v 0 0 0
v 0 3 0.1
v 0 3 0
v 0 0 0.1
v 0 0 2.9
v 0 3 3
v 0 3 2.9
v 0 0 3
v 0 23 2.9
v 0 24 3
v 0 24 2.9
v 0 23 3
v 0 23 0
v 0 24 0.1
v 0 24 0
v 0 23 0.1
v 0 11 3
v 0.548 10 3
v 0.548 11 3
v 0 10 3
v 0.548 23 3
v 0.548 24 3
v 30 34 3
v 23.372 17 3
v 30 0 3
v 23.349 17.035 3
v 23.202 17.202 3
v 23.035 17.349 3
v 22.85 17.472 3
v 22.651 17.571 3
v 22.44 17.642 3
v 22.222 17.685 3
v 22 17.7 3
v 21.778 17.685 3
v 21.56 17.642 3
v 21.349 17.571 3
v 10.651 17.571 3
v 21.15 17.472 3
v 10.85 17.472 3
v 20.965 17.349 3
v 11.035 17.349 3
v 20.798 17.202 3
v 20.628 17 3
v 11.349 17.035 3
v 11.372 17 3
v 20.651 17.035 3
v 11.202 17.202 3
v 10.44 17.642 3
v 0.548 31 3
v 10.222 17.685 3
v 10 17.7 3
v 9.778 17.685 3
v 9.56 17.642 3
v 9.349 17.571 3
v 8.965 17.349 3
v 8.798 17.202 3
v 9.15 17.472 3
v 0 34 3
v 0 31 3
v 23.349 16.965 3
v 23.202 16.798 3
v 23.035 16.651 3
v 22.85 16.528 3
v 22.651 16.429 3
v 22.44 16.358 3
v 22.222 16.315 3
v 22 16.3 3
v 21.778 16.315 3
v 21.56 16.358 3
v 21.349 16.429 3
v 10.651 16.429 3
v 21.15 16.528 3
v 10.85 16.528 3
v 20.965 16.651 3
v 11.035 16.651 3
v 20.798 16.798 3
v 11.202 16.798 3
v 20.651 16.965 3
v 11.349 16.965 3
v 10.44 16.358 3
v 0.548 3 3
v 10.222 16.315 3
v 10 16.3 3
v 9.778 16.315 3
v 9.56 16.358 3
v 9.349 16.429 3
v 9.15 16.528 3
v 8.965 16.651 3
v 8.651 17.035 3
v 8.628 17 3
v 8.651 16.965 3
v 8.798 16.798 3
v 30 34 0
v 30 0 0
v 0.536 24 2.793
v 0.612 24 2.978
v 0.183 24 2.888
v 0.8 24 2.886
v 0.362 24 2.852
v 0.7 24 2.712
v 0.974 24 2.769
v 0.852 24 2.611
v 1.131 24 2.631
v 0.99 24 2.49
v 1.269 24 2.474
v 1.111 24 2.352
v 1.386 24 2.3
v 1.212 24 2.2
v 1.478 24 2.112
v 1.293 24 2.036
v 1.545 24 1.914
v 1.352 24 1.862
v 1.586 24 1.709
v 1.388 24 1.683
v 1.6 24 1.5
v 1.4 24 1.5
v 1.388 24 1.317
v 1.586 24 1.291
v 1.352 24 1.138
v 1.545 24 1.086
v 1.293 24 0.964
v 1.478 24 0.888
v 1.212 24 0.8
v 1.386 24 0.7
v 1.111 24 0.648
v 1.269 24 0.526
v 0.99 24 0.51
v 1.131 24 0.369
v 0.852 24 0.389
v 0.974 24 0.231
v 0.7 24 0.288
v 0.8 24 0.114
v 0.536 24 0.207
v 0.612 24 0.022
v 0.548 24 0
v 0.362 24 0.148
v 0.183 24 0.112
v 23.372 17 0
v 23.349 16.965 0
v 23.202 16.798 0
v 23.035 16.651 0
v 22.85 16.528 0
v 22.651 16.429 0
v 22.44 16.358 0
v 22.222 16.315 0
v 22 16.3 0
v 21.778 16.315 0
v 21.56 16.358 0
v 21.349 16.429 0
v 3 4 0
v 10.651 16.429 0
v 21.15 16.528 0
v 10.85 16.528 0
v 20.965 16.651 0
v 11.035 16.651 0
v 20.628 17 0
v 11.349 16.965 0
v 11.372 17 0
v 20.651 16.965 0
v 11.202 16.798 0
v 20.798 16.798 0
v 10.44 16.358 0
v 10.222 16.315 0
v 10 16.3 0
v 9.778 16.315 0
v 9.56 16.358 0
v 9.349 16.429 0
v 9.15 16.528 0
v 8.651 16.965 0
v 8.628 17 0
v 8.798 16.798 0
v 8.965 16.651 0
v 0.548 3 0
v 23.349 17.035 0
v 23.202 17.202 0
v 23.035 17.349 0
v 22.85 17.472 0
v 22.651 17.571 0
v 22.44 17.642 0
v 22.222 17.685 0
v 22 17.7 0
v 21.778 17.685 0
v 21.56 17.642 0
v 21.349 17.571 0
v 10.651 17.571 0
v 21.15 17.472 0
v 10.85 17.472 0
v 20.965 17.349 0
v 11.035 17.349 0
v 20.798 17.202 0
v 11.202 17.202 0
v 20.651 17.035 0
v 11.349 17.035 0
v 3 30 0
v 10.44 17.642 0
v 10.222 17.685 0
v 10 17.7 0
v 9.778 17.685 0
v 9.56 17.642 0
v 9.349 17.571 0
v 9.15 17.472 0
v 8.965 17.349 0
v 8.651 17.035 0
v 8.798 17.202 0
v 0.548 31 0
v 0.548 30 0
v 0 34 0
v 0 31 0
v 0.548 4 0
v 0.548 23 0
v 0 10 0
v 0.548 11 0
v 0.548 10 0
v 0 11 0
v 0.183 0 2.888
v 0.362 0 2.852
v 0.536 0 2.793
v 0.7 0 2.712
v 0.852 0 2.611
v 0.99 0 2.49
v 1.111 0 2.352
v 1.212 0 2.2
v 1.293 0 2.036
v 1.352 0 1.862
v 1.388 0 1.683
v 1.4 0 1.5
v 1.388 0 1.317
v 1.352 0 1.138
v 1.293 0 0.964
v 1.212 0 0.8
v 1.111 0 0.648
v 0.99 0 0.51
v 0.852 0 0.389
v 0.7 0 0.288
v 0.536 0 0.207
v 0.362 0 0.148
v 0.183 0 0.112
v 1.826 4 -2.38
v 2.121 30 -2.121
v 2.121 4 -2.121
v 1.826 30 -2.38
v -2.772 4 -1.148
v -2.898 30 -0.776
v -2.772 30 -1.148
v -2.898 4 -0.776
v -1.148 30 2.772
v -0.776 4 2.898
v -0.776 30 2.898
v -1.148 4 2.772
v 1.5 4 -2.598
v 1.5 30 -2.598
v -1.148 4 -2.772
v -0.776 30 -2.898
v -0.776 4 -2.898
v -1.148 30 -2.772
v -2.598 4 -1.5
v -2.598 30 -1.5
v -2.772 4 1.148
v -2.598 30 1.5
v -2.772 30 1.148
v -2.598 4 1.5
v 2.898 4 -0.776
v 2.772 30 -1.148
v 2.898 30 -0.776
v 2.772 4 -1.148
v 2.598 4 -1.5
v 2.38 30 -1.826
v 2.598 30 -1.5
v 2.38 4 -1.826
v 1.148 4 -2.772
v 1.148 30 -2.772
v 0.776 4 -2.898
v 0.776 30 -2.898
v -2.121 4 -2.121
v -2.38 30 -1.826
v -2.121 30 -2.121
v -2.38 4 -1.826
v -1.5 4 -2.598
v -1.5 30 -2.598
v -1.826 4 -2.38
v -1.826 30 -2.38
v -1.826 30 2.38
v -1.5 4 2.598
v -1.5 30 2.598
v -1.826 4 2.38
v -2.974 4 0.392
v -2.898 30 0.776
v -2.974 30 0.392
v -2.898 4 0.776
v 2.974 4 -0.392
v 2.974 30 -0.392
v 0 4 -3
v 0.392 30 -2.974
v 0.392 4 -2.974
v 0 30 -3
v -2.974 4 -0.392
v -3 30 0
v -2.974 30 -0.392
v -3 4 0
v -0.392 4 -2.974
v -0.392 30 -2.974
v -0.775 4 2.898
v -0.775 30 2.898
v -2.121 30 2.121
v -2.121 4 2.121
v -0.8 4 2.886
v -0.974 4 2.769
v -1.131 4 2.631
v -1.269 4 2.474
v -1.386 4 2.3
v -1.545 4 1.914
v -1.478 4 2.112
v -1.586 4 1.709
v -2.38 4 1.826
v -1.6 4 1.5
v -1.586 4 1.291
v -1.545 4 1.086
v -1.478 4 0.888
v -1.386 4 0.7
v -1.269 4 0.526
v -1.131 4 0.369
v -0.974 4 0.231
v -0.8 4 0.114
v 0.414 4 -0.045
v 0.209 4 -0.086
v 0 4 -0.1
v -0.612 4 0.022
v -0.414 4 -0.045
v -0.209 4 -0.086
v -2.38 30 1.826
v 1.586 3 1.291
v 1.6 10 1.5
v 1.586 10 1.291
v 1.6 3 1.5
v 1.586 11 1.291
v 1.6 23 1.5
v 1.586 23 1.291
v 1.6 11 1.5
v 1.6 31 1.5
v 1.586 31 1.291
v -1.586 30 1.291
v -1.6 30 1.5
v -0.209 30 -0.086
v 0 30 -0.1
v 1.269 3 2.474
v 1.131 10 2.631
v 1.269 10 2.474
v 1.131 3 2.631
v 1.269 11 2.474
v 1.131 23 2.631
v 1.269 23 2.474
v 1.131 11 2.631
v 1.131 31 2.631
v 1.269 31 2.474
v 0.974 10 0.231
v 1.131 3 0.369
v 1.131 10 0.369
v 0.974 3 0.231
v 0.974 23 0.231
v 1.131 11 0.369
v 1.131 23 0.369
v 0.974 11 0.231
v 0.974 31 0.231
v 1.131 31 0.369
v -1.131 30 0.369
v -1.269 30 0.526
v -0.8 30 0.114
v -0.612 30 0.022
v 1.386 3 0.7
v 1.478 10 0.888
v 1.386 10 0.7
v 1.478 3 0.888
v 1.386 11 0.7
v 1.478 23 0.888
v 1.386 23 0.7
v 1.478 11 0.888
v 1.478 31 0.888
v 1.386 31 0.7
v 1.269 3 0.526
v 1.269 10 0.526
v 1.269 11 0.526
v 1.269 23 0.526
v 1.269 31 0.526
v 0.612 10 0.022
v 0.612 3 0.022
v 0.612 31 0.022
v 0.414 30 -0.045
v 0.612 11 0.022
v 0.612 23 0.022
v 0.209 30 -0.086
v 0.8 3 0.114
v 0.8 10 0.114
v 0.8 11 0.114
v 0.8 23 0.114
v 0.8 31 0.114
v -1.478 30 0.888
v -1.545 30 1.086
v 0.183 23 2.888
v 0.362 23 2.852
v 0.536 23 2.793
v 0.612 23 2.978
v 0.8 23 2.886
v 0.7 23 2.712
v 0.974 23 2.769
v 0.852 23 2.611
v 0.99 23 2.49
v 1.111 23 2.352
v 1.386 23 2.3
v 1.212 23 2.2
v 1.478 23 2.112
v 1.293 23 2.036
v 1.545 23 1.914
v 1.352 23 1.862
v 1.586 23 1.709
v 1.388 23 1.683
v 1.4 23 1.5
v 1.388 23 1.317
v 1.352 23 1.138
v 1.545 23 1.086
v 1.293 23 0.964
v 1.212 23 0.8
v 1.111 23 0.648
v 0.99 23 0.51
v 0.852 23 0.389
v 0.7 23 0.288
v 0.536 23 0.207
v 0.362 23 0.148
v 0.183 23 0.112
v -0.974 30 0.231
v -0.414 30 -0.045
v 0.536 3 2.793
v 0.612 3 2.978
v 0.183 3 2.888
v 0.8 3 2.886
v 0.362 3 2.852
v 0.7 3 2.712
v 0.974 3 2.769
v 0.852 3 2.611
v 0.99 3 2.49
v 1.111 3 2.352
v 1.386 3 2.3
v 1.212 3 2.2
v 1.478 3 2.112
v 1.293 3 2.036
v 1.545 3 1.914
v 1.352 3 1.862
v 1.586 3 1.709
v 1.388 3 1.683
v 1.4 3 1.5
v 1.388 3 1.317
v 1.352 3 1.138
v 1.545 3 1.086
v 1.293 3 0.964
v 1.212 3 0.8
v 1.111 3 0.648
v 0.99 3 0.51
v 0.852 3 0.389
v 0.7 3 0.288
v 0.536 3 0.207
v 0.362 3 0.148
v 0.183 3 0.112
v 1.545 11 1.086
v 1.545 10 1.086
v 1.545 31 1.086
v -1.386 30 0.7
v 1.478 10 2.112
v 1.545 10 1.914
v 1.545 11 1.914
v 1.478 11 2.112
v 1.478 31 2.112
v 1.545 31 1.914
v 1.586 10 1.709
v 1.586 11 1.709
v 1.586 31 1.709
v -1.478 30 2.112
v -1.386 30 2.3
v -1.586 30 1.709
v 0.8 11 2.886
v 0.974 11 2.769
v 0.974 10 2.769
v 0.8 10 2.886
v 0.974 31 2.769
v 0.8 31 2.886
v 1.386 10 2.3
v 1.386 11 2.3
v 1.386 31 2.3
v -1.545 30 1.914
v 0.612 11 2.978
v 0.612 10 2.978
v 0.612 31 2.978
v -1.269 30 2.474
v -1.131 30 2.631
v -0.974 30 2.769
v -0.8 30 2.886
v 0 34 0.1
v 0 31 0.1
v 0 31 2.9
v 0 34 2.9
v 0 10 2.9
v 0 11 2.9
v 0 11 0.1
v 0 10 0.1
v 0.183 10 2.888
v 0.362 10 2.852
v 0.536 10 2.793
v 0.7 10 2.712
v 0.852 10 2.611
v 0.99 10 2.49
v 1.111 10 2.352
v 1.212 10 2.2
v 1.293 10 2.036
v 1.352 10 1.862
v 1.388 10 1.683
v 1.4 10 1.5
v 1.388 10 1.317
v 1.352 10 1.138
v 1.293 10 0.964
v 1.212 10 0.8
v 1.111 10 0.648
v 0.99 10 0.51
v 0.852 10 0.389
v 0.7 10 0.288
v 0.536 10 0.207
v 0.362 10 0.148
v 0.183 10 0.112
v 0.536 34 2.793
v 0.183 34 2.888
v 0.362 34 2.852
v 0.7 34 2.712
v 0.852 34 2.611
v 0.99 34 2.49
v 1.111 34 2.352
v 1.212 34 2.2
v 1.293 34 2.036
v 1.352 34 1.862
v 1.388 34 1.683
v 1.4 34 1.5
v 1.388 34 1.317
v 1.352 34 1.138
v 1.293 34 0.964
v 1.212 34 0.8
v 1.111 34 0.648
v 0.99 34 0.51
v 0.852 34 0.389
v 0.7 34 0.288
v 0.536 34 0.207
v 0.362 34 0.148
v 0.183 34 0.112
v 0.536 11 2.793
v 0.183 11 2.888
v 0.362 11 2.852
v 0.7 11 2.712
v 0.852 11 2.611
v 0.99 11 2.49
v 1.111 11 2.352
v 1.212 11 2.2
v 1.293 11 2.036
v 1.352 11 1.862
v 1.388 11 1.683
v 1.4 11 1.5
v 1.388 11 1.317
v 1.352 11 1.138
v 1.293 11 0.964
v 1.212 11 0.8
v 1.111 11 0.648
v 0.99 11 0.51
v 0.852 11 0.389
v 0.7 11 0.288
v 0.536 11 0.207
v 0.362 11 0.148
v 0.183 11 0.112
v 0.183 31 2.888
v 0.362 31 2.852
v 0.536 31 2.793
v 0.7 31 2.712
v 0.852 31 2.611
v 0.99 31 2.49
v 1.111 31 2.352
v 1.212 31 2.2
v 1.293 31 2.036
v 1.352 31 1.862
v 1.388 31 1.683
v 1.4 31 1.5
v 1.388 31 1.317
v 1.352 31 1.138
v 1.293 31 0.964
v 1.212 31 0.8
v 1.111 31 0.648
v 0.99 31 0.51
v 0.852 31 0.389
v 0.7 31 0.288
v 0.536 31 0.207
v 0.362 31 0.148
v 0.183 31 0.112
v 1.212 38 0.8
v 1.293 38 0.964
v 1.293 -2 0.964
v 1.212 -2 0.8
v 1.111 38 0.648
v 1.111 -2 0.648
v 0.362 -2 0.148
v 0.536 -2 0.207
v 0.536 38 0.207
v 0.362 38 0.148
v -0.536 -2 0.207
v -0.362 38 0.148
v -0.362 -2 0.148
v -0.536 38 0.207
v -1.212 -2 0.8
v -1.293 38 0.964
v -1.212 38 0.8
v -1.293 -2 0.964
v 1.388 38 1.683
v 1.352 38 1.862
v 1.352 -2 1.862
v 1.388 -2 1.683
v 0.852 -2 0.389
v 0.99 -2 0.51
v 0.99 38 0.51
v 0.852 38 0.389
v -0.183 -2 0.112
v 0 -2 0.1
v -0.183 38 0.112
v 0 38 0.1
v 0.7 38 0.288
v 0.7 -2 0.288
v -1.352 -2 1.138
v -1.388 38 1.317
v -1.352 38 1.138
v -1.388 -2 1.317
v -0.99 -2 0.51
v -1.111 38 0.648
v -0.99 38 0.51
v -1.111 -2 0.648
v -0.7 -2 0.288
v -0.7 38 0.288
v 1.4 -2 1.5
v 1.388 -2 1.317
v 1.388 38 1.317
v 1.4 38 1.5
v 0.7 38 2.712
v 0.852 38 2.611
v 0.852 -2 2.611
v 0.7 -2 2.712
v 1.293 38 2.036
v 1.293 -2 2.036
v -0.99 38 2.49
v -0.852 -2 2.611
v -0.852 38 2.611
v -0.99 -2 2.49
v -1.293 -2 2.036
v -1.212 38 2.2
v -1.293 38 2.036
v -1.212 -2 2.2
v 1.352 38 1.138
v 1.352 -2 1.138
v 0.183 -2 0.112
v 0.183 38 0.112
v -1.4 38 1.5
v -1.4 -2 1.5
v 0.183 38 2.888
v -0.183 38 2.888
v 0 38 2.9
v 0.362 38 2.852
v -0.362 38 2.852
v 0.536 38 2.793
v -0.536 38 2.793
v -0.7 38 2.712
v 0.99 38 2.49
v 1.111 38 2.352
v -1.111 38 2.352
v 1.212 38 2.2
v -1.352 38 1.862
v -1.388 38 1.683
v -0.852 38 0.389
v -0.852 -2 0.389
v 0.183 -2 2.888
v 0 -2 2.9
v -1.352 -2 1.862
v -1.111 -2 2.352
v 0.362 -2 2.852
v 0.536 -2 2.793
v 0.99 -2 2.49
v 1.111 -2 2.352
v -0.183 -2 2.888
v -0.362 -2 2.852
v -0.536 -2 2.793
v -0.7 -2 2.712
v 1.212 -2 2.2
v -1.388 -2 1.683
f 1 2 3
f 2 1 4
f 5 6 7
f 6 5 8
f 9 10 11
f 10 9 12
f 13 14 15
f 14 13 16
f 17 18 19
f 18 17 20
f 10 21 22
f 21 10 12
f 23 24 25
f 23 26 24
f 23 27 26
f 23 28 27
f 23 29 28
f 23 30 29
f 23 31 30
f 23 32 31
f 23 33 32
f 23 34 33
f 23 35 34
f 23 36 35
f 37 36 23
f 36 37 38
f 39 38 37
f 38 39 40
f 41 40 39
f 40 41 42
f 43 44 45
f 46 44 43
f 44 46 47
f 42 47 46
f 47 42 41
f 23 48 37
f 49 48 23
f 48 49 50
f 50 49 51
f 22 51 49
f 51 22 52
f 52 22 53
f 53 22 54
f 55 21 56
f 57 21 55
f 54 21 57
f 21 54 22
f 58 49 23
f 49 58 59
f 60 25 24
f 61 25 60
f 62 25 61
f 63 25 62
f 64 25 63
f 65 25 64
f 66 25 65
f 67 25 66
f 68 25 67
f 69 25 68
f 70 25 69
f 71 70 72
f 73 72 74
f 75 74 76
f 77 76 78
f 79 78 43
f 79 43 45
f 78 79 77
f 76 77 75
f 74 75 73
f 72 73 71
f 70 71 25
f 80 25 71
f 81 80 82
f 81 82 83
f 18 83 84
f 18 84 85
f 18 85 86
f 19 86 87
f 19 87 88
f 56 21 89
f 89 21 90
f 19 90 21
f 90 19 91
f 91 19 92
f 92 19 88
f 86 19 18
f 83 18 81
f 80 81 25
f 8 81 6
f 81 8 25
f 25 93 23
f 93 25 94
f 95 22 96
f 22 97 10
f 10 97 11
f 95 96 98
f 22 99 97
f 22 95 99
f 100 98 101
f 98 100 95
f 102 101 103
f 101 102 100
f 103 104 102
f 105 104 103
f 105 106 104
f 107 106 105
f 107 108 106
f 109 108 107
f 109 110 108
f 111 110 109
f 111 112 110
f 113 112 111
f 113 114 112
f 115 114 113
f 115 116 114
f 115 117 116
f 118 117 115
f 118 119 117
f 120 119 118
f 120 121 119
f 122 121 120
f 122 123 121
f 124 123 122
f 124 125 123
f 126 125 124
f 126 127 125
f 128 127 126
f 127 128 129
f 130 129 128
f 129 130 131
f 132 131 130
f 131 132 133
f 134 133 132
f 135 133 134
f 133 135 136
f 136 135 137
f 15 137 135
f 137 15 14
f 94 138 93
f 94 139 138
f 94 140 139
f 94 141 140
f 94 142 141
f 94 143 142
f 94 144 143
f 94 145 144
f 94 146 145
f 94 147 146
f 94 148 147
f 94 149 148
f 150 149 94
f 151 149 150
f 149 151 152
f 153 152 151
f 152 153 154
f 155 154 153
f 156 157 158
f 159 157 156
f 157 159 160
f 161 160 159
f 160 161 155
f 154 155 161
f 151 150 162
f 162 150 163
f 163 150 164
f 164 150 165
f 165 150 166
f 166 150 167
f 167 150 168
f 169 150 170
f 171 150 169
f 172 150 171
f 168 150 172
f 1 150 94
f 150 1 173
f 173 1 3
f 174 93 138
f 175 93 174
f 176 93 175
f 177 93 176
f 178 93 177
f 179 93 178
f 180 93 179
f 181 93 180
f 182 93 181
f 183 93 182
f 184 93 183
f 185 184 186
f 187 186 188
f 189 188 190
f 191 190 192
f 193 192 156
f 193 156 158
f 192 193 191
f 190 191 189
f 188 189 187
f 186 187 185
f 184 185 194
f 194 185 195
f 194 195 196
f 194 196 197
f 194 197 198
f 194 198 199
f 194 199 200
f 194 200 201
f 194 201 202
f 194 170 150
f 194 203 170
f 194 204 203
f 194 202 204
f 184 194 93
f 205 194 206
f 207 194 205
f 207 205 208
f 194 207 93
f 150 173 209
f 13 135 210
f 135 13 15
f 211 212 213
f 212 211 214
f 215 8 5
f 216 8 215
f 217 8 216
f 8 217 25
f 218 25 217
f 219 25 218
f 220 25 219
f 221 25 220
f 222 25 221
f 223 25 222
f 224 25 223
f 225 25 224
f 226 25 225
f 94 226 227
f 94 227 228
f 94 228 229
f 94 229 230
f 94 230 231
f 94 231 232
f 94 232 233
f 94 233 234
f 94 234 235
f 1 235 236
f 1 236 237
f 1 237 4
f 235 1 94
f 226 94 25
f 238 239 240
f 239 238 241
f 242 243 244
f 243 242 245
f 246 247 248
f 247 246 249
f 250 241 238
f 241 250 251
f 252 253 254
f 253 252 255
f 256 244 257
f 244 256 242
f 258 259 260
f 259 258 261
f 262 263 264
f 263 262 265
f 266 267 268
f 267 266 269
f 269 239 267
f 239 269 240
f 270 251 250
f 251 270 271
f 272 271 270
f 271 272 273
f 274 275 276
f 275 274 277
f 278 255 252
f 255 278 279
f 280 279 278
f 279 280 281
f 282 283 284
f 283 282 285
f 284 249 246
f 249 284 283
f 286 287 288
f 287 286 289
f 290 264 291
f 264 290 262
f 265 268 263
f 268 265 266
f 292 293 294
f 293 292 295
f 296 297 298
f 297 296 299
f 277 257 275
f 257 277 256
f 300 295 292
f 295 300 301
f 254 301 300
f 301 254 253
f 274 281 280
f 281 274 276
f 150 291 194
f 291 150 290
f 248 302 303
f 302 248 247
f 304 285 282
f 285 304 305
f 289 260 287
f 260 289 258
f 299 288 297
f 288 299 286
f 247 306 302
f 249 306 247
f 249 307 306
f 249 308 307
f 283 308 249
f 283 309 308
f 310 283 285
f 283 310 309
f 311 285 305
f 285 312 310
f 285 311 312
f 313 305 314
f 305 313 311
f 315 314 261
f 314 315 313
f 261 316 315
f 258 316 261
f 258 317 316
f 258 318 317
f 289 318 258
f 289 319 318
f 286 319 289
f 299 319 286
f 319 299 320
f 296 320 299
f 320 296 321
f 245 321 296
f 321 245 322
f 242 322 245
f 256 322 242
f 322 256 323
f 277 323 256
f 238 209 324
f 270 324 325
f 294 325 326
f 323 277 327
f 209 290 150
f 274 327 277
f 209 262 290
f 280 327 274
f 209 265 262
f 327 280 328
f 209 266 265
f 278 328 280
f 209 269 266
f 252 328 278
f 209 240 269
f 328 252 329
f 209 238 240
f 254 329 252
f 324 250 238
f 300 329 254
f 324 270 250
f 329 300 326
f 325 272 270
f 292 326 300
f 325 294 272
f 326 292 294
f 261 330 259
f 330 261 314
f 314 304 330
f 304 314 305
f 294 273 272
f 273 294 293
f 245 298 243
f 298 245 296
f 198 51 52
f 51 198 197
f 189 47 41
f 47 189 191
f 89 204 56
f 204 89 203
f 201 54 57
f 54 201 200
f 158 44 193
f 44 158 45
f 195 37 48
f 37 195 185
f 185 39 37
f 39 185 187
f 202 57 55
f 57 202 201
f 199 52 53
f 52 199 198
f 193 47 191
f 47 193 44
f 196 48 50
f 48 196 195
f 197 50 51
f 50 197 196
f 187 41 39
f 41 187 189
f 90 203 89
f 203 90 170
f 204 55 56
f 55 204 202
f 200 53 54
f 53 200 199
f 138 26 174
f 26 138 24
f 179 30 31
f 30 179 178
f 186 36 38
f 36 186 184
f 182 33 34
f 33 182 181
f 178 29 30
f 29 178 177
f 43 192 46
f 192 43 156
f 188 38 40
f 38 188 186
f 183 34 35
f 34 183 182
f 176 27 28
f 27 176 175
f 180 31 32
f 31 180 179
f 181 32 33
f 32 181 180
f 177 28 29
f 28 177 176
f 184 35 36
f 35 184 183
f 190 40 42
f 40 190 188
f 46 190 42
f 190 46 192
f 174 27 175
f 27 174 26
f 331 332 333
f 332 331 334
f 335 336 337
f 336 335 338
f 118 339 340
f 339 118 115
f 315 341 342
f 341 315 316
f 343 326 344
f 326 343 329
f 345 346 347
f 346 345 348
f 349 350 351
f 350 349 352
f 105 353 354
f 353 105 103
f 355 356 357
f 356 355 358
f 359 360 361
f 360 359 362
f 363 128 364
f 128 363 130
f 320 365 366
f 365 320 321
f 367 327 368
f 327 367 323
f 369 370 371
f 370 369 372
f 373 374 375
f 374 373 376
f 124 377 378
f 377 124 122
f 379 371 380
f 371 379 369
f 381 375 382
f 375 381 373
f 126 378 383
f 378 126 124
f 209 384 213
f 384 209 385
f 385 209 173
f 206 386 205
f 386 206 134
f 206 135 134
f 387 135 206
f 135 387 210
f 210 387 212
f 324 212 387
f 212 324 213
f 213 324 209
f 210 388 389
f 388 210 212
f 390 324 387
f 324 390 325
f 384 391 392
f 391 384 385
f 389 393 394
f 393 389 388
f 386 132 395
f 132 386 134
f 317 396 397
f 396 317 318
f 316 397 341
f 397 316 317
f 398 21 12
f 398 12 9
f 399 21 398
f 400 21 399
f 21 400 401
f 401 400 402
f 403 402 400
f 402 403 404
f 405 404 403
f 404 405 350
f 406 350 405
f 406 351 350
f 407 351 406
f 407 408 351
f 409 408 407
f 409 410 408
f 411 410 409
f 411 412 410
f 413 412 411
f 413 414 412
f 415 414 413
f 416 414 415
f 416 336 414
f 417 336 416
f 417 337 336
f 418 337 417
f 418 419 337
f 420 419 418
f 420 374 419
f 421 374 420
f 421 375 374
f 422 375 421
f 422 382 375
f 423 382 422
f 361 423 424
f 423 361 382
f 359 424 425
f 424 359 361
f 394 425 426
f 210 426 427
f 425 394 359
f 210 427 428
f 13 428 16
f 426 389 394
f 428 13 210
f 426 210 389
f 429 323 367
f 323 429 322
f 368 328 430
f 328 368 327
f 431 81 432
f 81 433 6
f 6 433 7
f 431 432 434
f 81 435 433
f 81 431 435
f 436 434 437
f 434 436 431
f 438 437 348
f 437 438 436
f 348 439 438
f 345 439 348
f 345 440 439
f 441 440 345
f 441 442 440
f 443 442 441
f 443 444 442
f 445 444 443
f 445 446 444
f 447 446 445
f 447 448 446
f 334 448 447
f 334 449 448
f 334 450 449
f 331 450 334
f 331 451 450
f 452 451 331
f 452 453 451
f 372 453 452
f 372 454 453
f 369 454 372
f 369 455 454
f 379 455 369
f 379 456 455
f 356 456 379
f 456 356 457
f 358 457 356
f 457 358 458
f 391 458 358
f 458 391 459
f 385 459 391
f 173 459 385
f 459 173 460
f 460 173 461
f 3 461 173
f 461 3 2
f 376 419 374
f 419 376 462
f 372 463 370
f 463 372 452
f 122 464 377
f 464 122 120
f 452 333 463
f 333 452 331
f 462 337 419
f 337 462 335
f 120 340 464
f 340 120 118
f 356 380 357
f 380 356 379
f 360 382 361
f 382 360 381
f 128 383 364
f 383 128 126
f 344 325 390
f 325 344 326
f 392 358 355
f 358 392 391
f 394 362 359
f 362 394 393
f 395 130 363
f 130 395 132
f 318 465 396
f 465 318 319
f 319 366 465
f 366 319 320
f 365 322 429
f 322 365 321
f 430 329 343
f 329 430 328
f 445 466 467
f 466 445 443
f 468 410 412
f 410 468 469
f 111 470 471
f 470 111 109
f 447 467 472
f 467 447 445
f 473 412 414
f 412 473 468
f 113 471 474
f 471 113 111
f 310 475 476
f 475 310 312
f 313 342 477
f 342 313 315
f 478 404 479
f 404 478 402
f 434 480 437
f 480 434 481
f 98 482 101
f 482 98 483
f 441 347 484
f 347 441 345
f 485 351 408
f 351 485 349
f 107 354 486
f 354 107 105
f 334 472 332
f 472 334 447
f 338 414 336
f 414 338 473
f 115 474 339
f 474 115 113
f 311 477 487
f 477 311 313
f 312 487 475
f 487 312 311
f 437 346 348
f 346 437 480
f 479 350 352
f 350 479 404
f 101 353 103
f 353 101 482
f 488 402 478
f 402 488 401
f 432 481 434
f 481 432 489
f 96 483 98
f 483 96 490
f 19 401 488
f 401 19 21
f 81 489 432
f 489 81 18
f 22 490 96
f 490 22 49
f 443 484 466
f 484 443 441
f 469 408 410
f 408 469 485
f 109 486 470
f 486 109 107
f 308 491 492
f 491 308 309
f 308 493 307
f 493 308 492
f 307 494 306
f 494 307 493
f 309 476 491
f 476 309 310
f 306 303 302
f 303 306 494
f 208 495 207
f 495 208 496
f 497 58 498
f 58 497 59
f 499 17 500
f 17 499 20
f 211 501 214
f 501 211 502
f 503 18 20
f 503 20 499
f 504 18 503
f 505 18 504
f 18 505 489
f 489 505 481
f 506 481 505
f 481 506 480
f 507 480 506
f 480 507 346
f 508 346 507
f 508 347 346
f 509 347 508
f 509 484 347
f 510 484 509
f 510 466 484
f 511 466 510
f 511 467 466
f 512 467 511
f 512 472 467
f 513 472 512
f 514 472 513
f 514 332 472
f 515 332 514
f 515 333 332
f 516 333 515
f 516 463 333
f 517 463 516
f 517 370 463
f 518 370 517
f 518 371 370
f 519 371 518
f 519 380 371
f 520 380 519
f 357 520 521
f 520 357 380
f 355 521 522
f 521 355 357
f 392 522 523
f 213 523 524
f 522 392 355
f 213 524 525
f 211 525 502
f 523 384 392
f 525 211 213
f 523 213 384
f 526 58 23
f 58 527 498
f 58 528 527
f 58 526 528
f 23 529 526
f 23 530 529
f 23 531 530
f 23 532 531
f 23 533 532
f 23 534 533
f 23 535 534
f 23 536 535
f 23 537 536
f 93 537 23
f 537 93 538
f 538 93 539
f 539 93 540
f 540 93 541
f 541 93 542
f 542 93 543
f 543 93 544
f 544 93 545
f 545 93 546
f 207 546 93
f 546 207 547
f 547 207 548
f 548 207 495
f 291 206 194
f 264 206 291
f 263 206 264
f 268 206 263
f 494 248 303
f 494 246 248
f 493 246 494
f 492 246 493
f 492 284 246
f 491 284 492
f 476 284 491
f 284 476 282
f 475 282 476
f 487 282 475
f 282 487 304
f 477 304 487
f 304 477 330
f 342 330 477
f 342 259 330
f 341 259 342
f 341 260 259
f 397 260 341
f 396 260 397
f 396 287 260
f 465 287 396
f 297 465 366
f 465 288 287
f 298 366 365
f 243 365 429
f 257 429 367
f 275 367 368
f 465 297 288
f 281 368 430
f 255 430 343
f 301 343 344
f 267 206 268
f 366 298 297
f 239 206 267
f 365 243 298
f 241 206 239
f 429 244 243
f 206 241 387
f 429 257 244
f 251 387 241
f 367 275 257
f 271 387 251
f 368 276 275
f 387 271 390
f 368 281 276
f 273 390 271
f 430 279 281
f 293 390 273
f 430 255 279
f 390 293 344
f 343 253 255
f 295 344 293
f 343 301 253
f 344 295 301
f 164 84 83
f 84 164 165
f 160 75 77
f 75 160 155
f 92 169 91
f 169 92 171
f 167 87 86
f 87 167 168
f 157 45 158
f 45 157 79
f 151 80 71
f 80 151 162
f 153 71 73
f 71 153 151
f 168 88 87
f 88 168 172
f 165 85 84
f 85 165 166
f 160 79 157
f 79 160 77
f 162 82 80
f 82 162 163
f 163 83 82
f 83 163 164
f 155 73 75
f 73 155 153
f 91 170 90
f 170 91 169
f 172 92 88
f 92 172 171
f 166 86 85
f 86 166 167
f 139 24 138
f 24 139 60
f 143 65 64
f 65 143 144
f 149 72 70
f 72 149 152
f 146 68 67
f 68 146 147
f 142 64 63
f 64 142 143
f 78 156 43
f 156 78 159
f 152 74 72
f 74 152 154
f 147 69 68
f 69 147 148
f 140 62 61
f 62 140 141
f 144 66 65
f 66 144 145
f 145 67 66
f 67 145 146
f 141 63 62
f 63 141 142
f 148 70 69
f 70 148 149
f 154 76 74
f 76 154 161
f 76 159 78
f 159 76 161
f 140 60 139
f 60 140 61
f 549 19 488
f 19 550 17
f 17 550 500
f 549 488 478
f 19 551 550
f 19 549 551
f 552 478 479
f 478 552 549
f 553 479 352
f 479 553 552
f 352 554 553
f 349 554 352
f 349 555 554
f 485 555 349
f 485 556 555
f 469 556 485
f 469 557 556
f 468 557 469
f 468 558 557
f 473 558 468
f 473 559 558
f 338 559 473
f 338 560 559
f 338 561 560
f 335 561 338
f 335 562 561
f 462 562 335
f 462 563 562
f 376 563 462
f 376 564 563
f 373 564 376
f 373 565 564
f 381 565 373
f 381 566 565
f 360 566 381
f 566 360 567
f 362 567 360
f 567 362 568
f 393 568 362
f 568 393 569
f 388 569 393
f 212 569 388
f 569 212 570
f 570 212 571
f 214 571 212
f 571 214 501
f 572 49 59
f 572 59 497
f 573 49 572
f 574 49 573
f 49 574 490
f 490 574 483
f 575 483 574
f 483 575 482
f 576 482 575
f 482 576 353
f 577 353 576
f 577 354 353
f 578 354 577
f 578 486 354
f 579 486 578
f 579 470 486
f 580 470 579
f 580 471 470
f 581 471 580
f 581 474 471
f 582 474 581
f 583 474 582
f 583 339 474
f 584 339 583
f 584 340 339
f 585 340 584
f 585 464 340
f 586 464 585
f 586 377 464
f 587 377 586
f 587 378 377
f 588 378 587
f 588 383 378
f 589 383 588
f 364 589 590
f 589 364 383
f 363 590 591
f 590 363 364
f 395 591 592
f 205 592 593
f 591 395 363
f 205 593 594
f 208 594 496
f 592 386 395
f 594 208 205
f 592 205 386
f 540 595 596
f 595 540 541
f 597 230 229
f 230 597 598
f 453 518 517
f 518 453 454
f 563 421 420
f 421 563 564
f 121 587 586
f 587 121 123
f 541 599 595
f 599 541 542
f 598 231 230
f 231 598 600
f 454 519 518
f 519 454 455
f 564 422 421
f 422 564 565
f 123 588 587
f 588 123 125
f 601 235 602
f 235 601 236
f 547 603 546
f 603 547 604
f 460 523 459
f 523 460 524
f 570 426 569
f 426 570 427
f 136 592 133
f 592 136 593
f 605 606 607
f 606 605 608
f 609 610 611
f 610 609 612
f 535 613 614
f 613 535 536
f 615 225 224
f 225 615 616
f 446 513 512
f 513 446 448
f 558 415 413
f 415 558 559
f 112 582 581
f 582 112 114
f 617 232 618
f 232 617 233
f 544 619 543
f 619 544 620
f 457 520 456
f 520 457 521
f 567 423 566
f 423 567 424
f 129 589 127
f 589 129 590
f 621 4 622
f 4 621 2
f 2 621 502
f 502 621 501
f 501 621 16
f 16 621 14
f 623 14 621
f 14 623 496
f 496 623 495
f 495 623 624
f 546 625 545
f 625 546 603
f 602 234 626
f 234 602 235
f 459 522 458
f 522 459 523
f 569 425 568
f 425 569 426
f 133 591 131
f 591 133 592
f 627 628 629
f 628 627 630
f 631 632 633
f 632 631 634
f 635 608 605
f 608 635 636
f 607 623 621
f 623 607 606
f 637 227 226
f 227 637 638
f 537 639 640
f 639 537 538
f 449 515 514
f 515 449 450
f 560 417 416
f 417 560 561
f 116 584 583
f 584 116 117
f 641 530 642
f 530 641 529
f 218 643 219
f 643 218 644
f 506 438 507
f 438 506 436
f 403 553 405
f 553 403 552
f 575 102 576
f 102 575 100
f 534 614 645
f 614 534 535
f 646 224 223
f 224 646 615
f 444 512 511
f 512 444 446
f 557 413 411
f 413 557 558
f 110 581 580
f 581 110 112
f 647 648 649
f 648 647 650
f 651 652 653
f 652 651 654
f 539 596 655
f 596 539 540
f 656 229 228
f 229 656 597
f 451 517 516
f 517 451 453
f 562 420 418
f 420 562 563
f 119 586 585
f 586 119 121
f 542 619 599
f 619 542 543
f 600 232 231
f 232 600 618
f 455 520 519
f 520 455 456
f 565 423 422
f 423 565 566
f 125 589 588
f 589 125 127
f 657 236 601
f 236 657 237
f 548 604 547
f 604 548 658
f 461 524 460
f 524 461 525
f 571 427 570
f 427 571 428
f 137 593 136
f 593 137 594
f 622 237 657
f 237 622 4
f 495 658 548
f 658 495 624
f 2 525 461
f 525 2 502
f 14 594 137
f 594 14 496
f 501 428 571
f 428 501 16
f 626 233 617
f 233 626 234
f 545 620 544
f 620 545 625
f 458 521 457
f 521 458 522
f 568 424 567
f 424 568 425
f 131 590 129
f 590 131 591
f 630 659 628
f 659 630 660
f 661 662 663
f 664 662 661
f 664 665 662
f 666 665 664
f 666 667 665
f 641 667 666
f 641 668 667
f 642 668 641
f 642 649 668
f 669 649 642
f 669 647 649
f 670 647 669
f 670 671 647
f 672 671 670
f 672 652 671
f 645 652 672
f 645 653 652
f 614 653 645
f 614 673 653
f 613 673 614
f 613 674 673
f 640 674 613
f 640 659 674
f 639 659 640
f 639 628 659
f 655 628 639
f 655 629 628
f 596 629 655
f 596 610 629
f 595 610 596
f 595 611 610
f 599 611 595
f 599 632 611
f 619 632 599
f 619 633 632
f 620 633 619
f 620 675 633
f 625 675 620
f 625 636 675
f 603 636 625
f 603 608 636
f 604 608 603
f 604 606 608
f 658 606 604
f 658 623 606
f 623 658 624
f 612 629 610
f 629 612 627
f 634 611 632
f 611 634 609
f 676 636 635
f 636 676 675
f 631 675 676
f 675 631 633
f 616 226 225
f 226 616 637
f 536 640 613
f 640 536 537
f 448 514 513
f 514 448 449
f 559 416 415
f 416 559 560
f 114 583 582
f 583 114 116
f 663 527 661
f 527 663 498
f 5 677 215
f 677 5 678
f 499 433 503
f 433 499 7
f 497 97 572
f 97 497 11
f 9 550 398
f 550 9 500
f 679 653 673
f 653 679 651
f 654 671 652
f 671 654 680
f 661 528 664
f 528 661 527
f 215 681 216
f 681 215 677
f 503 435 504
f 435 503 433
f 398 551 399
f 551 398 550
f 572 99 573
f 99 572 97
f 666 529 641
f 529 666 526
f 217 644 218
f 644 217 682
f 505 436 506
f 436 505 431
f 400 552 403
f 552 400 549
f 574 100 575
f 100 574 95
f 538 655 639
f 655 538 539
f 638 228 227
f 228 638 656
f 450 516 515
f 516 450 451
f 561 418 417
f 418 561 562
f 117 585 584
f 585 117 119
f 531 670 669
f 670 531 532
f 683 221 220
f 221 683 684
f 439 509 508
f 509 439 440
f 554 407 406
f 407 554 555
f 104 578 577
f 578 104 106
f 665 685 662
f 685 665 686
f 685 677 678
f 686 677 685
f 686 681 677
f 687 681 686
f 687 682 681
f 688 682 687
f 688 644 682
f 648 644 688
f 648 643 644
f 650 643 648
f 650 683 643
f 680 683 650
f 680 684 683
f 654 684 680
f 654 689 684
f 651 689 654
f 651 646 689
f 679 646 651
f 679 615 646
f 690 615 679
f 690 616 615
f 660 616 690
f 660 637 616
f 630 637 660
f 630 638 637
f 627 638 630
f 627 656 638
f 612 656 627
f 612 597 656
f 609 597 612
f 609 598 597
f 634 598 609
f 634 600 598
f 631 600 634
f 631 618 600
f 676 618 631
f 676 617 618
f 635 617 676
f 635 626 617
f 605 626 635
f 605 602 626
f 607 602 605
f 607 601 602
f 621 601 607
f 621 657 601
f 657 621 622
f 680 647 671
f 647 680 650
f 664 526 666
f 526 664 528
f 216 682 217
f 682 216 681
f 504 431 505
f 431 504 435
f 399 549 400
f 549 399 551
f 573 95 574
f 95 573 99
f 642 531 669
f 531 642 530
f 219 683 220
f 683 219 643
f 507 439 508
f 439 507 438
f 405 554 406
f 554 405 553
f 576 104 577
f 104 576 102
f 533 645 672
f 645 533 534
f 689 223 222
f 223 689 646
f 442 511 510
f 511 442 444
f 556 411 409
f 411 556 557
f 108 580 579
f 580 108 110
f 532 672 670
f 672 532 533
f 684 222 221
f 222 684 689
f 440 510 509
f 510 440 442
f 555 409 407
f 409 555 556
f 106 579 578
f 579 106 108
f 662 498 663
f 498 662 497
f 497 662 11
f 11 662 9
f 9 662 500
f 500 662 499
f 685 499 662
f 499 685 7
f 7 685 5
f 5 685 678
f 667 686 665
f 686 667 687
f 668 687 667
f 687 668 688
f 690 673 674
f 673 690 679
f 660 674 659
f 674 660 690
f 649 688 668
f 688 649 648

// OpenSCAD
// Checkpoint 4b - A hinge: two leaves and a pin, four mated parts.
$fn = 48;
module leaf() {
  difference() {
    union() {
      cube([30, 24, 3]);
      translate([0, 4, 0]) rotate([-90, 0, 0]) cylinder(h = 16, r = 3);
    }
    translate([0, 3, 1.5]) rotate([-90, 0, 0]) cylinder(h = 20, r = 1.6);
    for (x = [10, 22]) translate([x, 16, -1]) cylinder(h = 6, r = 1.7);
  }
}
leaf();
translate([0, 34, 0]) mirror([0, 1, 0]) leaf();
translate([0, -2, 1.5]) rotate([-90, 0, 0]) cylinder(h = 40, r = 1.4);
